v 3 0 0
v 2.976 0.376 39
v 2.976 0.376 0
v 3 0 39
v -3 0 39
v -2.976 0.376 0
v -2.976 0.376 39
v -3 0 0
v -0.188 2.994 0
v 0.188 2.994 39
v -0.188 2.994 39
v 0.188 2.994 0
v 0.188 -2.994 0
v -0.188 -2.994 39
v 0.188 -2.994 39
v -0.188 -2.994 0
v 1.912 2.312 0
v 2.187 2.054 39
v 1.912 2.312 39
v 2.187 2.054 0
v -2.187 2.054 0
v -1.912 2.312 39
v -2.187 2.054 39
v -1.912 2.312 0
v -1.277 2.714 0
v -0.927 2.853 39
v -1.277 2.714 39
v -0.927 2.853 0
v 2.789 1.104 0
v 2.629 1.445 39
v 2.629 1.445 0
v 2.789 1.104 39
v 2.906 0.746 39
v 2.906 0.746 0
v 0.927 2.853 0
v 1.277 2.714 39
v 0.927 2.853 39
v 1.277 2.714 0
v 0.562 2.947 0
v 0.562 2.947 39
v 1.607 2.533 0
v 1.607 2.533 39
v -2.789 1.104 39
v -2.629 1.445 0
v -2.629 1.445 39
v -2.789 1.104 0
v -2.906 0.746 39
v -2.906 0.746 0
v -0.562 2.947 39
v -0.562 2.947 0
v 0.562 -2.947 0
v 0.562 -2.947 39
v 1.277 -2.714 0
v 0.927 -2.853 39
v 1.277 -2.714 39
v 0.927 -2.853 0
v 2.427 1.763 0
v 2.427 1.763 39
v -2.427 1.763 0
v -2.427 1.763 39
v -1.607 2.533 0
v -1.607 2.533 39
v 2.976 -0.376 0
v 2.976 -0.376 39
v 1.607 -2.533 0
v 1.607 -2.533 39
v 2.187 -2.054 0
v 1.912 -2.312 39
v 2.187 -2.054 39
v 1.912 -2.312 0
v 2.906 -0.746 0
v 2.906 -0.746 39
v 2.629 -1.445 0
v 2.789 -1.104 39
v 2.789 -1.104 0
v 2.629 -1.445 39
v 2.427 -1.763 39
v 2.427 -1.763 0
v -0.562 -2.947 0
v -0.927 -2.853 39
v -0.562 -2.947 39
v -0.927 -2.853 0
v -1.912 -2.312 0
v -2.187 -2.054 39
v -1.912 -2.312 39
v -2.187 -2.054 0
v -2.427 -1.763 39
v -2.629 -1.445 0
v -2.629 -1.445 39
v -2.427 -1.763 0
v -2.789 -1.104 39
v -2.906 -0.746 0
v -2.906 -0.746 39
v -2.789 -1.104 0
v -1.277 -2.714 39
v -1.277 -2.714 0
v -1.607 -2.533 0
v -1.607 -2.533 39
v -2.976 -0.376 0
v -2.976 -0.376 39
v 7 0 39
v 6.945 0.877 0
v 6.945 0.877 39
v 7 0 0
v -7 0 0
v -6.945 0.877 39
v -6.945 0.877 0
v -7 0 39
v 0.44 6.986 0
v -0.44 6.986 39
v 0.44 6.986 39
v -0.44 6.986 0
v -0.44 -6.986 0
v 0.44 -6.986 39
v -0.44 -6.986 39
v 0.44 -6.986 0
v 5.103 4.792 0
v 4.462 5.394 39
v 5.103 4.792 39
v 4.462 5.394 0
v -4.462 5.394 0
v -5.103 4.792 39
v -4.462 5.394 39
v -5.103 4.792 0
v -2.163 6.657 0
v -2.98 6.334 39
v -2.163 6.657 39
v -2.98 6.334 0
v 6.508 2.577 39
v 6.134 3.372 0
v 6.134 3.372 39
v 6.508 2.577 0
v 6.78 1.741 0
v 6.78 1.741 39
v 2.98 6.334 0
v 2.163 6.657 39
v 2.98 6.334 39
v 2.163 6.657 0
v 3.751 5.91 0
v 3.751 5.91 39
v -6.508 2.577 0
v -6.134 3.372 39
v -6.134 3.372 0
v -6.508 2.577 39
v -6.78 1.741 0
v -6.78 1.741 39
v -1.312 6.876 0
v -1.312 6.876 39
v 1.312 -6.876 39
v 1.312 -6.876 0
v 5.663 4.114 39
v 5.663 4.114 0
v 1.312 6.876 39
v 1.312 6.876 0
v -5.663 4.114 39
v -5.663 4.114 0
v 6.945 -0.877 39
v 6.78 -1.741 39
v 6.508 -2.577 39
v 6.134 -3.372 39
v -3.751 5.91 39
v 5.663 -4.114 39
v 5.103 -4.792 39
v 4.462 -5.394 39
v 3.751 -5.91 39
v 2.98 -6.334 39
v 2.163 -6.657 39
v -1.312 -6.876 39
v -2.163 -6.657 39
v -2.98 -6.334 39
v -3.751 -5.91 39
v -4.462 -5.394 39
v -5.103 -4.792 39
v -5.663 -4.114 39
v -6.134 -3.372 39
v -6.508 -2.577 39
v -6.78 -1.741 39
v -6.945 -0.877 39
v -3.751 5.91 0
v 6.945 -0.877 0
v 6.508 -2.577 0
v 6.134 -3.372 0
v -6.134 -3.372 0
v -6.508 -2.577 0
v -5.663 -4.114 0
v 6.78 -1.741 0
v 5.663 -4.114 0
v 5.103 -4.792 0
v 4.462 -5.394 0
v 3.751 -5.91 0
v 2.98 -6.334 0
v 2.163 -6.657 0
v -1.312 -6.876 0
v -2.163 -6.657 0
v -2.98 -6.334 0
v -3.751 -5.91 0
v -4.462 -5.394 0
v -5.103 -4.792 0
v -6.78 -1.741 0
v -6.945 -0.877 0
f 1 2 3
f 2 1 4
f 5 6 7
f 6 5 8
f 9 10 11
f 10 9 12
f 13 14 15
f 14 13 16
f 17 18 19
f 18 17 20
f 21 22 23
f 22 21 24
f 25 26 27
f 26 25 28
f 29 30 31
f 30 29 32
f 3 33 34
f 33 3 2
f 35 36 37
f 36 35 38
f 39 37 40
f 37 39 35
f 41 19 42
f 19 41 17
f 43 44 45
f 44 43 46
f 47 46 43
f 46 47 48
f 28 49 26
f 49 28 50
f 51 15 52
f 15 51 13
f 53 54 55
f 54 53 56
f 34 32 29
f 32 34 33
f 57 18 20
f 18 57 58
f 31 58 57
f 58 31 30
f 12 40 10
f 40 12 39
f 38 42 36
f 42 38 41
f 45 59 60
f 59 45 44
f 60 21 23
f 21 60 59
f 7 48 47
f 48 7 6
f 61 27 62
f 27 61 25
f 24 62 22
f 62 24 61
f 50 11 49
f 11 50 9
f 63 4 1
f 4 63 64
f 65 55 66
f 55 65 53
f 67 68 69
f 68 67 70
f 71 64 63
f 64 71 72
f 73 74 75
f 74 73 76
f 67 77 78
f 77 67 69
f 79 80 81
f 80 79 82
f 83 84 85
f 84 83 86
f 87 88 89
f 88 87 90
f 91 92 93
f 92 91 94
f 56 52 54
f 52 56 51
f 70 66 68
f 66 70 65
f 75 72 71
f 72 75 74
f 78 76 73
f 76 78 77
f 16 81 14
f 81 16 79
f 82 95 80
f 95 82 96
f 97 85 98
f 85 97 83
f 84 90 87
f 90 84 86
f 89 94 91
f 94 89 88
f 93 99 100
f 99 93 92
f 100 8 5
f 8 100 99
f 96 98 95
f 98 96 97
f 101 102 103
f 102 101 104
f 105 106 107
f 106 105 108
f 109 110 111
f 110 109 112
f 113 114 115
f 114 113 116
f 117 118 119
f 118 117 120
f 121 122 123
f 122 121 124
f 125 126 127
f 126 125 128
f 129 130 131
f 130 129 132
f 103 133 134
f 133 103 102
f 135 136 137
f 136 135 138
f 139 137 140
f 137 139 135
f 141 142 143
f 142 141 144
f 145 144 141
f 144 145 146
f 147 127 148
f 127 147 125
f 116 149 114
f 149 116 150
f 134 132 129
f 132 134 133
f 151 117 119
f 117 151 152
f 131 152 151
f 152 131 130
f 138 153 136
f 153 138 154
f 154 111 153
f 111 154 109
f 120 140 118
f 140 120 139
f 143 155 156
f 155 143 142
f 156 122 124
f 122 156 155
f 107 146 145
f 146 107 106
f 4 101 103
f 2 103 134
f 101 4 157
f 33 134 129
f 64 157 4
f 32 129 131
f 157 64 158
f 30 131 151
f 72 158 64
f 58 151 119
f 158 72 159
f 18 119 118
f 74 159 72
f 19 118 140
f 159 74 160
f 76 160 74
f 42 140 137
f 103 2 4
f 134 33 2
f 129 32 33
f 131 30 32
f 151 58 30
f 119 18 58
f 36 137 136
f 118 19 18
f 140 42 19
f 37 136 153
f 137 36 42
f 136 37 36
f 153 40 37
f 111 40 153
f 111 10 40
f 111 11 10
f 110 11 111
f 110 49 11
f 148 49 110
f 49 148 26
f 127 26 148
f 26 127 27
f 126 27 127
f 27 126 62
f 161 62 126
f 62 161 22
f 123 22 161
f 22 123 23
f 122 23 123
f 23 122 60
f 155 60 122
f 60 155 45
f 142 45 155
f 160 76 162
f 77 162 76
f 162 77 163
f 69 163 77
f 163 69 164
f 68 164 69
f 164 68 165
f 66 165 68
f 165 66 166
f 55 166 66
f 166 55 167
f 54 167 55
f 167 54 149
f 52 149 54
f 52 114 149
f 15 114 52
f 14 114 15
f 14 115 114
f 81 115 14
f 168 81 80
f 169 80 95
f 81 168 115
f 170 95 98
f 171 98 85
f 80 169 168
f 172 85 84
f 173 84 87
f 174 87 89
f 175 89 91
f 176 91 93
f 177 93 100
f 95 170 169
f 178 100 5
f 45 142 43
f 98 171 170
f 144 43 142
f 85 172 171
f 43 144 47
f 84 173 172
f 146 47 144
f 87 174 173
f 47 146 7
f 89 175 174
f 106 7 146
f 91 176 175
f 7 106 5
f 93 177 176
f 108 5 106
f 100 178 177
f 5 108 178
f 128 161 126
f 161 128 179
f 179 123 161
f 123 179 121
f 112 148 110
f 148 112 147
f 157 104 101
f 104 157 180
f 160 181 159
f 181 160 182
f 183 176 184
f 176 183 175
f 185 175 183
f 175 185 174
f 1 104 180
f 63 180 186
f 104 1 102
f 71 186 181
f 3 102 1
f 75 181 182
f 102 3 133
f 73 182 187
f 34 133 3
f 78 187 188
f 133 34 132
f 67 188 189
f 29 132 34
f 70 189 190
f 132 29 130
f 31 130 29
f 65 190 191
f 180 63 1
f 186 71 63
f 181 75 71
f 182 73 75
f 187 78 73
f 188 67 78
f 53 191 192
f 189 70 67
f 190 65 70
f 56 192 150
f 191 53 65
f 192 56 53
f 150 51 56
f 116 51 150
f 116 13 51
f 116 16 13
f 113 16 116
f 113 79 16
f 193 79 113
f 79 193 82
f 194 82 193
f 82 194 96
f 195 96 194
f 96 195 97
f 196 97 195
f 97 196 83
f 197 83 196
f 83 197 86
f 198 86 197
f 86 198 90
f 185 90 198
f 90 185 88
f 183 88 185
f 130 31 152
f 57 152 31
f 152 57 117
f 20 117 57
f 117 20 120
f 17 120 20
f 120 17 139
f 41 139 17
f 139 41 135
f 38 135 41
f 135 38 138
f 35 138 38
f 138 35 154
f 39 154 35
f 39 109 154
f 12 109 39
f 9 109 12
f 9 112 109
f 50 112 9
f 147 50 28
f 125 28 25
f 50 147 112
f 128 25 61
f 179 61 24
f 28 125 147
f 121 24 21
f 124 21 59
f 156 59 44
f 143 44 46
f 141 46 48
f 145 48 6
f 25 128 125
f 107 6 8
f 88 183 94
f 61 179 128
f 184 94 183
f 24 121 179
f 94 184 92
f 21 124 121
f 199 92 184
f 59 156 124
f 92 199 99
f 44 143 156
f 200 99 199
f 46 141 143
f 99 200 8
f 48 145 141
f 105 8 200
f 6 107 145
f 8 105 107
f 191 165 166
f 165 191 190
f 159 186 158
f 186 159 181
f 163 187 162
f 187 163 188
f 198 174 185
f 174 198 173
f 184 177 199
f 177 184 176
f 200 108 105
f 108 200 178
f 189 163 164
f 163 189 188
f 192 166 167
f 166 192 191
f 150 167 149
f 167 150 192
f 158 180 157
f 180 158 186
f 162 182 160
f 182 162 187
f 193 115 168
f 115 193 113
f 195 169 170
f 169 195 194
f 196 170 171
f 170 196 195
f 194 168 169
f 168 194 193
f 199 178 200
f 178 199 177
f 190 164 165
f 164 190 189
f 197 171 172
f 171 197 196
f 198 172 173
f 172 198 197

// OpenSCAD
$fn = 50;


difference() {
	union() {
		cylinder(h = 39, r = 7.0000000000);
	}
	union() {
		translate(v = [0.0000000000, 0.0000000000, -100.0000000000]) {
			cylinder(h = 200, r = 3.0000000000);
		}
		translate(v = [0.0000000000, 0.0000000000, -100.0000000000]) {
			cylinder(h = 200, r = 3.0000000000);
		}
		translate(v = [0.0000000000, 0.0000000000, -100.0000000000]) {
			cylinder(h = 200, r = 3.0000000000);
		}
		translate(v = [0.0000000000, 0.0000000000, -100.0000000000]) {
			cylinder(h = 200, r = 3.0000000000);
		}
	}
}
